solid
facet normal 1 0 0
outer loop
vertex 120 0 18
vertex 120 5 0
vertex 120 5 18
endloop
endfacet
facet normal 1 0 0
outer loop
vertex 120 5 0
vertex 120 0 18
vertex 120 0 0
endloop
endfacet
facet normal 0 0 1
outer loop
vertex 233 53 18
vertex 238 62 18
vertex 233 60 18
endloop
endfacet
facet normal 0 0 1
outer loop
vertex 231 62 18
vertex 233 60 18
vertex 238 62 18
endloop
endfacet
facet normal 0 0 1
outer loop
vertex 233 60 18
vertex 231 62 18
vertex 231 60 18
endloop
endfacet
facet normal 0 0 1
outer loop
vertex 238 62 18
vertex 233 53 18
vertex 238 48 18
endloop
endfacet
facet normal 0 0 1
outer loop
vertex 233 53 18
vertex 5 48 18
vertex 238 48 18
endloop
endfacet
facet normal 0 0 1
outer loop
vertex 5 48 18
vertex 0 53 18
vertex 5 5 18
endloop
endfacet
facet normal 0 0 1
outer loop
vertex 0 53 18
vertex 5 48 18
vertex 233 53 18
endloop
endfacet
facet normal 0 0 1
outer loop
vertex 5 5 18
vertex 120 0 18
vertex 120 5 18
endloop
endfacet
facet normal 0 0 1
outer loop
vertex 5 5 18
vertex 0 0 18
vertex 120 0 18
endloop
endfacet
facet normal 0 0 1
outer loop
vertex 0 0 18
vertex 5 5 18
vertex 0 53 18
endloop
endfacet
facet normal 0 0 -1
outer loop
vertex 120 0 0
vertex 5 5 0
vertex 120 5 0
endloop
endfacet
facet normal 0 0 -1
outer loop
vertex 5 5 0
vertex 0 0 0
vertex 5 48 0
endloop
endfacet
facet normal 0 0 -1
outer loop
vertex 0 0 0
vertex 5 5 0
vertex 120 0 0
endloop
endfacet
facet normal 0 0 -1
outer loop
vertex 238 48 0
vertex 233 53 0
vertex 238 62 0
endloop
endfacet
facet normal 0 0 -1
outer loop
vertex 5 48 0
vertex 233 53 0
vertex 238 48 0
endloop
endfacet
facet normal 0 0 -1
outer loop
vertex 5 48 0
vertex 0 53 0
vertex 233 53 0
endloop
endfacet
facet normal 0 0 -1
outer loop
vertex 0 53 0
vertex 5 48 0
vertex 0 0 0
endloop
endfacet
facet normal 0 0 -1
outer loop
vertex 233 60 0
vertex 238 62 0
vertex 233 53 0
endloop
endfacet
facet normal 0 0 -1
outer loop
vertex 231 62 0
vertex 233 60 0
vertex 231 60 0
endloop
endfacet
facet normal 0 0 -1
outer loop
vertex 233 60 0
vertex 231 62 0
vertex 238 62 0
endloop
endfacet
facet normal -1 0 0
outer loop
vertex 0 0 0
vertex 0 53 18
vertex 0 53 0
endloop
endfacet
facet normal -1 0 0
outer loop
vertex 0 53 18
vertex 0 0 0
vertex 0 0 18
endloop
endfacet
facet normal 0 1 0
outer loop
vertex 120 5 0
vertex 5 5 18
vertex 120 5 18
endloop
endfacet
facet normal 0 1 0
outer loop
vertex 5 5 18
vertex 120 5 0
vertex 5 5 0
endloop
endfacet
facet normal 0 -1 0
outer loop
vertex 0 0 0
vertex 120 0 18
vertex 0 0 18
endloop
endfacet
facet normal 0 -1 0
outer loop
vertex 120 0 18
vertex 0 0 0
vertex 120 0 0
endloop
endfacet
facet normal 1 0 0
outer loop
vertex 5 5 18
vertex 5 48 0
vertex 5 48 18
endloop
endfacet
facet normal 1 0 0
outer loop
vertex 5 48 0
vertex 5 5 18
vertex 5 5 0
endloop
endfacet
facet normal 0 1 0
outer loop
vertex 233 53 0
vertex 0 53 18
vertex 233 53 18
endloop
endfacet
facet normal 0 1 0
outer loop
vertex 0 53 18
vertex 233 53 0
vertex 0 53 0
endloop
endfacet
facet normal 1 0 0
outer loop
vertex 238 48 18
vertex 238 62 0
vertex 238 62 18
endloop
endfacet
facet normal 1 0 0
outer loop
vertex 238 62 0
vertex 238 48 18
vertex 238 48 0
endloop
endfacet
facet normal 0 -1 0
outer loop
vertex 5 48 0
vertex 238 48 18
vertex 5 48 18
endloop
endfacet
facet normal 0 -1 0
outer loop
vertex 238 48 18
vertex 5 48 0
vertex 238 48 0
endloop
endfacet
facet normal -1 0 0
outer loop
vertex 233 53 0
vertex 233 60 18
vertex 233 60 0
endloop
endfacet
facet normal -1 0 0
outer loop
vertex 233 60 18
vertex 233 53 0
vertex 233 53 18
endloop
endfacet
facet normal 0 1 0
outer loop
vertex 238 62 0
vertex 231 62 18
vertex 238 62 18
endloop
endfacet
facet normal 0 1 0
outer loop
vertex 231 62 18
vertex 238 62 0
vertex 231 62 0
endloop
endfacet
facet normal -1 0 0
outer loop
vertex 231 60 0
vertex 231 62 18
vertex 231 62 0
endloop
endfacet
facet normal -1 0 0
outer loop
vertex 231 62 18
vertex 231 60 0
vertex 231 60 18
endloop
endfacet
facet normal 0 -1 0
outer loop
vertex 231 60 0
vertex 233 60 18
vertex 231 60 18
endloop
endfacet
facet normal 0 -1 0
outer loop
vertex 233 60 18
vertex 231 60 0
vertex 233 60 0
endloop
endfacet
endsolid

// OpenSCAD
pic_hook_gap = 18;
pic_hook_height = 8;
pic_hook_depth = 2;
pic_frame_depth = 4;
door_thick = 43;
hook_thick = 5;
door_drop = 115;
hook_drop = 105;

cube([ door_drop + hook_thick, hook_thick, pic_hook_gap ]);
cube([ hook_thick, door_thick + (2 * hook_thick), pic_hook_gap ]);

translate([ 0, door_thick + hook_thick, 0 ])
{
    cube([ door_drop + (2 * hook_thick) + hook_drop + pic_hook_height, hook_thick, pic_hook_gap ]);
}

translate([ door_drop + hook_thick + hook_drop + pic_hook_height, door_thick + (2 * hook_thick), 0 ])
{
    cube([ hook_thick, pic_frame_depth + hook_thick, pic_hook_gap ]);
}

translate([ door_drop + hook_thick + hook_drop + pic_hook_height - pic_hook_depth, door_thick + (3 * hook_thick) + pic_frame_depth - pic_hook_depth, 0]) {
  cube([ pic_hook_depth, pic_hook_depth, pic_hook_gap]);
}
